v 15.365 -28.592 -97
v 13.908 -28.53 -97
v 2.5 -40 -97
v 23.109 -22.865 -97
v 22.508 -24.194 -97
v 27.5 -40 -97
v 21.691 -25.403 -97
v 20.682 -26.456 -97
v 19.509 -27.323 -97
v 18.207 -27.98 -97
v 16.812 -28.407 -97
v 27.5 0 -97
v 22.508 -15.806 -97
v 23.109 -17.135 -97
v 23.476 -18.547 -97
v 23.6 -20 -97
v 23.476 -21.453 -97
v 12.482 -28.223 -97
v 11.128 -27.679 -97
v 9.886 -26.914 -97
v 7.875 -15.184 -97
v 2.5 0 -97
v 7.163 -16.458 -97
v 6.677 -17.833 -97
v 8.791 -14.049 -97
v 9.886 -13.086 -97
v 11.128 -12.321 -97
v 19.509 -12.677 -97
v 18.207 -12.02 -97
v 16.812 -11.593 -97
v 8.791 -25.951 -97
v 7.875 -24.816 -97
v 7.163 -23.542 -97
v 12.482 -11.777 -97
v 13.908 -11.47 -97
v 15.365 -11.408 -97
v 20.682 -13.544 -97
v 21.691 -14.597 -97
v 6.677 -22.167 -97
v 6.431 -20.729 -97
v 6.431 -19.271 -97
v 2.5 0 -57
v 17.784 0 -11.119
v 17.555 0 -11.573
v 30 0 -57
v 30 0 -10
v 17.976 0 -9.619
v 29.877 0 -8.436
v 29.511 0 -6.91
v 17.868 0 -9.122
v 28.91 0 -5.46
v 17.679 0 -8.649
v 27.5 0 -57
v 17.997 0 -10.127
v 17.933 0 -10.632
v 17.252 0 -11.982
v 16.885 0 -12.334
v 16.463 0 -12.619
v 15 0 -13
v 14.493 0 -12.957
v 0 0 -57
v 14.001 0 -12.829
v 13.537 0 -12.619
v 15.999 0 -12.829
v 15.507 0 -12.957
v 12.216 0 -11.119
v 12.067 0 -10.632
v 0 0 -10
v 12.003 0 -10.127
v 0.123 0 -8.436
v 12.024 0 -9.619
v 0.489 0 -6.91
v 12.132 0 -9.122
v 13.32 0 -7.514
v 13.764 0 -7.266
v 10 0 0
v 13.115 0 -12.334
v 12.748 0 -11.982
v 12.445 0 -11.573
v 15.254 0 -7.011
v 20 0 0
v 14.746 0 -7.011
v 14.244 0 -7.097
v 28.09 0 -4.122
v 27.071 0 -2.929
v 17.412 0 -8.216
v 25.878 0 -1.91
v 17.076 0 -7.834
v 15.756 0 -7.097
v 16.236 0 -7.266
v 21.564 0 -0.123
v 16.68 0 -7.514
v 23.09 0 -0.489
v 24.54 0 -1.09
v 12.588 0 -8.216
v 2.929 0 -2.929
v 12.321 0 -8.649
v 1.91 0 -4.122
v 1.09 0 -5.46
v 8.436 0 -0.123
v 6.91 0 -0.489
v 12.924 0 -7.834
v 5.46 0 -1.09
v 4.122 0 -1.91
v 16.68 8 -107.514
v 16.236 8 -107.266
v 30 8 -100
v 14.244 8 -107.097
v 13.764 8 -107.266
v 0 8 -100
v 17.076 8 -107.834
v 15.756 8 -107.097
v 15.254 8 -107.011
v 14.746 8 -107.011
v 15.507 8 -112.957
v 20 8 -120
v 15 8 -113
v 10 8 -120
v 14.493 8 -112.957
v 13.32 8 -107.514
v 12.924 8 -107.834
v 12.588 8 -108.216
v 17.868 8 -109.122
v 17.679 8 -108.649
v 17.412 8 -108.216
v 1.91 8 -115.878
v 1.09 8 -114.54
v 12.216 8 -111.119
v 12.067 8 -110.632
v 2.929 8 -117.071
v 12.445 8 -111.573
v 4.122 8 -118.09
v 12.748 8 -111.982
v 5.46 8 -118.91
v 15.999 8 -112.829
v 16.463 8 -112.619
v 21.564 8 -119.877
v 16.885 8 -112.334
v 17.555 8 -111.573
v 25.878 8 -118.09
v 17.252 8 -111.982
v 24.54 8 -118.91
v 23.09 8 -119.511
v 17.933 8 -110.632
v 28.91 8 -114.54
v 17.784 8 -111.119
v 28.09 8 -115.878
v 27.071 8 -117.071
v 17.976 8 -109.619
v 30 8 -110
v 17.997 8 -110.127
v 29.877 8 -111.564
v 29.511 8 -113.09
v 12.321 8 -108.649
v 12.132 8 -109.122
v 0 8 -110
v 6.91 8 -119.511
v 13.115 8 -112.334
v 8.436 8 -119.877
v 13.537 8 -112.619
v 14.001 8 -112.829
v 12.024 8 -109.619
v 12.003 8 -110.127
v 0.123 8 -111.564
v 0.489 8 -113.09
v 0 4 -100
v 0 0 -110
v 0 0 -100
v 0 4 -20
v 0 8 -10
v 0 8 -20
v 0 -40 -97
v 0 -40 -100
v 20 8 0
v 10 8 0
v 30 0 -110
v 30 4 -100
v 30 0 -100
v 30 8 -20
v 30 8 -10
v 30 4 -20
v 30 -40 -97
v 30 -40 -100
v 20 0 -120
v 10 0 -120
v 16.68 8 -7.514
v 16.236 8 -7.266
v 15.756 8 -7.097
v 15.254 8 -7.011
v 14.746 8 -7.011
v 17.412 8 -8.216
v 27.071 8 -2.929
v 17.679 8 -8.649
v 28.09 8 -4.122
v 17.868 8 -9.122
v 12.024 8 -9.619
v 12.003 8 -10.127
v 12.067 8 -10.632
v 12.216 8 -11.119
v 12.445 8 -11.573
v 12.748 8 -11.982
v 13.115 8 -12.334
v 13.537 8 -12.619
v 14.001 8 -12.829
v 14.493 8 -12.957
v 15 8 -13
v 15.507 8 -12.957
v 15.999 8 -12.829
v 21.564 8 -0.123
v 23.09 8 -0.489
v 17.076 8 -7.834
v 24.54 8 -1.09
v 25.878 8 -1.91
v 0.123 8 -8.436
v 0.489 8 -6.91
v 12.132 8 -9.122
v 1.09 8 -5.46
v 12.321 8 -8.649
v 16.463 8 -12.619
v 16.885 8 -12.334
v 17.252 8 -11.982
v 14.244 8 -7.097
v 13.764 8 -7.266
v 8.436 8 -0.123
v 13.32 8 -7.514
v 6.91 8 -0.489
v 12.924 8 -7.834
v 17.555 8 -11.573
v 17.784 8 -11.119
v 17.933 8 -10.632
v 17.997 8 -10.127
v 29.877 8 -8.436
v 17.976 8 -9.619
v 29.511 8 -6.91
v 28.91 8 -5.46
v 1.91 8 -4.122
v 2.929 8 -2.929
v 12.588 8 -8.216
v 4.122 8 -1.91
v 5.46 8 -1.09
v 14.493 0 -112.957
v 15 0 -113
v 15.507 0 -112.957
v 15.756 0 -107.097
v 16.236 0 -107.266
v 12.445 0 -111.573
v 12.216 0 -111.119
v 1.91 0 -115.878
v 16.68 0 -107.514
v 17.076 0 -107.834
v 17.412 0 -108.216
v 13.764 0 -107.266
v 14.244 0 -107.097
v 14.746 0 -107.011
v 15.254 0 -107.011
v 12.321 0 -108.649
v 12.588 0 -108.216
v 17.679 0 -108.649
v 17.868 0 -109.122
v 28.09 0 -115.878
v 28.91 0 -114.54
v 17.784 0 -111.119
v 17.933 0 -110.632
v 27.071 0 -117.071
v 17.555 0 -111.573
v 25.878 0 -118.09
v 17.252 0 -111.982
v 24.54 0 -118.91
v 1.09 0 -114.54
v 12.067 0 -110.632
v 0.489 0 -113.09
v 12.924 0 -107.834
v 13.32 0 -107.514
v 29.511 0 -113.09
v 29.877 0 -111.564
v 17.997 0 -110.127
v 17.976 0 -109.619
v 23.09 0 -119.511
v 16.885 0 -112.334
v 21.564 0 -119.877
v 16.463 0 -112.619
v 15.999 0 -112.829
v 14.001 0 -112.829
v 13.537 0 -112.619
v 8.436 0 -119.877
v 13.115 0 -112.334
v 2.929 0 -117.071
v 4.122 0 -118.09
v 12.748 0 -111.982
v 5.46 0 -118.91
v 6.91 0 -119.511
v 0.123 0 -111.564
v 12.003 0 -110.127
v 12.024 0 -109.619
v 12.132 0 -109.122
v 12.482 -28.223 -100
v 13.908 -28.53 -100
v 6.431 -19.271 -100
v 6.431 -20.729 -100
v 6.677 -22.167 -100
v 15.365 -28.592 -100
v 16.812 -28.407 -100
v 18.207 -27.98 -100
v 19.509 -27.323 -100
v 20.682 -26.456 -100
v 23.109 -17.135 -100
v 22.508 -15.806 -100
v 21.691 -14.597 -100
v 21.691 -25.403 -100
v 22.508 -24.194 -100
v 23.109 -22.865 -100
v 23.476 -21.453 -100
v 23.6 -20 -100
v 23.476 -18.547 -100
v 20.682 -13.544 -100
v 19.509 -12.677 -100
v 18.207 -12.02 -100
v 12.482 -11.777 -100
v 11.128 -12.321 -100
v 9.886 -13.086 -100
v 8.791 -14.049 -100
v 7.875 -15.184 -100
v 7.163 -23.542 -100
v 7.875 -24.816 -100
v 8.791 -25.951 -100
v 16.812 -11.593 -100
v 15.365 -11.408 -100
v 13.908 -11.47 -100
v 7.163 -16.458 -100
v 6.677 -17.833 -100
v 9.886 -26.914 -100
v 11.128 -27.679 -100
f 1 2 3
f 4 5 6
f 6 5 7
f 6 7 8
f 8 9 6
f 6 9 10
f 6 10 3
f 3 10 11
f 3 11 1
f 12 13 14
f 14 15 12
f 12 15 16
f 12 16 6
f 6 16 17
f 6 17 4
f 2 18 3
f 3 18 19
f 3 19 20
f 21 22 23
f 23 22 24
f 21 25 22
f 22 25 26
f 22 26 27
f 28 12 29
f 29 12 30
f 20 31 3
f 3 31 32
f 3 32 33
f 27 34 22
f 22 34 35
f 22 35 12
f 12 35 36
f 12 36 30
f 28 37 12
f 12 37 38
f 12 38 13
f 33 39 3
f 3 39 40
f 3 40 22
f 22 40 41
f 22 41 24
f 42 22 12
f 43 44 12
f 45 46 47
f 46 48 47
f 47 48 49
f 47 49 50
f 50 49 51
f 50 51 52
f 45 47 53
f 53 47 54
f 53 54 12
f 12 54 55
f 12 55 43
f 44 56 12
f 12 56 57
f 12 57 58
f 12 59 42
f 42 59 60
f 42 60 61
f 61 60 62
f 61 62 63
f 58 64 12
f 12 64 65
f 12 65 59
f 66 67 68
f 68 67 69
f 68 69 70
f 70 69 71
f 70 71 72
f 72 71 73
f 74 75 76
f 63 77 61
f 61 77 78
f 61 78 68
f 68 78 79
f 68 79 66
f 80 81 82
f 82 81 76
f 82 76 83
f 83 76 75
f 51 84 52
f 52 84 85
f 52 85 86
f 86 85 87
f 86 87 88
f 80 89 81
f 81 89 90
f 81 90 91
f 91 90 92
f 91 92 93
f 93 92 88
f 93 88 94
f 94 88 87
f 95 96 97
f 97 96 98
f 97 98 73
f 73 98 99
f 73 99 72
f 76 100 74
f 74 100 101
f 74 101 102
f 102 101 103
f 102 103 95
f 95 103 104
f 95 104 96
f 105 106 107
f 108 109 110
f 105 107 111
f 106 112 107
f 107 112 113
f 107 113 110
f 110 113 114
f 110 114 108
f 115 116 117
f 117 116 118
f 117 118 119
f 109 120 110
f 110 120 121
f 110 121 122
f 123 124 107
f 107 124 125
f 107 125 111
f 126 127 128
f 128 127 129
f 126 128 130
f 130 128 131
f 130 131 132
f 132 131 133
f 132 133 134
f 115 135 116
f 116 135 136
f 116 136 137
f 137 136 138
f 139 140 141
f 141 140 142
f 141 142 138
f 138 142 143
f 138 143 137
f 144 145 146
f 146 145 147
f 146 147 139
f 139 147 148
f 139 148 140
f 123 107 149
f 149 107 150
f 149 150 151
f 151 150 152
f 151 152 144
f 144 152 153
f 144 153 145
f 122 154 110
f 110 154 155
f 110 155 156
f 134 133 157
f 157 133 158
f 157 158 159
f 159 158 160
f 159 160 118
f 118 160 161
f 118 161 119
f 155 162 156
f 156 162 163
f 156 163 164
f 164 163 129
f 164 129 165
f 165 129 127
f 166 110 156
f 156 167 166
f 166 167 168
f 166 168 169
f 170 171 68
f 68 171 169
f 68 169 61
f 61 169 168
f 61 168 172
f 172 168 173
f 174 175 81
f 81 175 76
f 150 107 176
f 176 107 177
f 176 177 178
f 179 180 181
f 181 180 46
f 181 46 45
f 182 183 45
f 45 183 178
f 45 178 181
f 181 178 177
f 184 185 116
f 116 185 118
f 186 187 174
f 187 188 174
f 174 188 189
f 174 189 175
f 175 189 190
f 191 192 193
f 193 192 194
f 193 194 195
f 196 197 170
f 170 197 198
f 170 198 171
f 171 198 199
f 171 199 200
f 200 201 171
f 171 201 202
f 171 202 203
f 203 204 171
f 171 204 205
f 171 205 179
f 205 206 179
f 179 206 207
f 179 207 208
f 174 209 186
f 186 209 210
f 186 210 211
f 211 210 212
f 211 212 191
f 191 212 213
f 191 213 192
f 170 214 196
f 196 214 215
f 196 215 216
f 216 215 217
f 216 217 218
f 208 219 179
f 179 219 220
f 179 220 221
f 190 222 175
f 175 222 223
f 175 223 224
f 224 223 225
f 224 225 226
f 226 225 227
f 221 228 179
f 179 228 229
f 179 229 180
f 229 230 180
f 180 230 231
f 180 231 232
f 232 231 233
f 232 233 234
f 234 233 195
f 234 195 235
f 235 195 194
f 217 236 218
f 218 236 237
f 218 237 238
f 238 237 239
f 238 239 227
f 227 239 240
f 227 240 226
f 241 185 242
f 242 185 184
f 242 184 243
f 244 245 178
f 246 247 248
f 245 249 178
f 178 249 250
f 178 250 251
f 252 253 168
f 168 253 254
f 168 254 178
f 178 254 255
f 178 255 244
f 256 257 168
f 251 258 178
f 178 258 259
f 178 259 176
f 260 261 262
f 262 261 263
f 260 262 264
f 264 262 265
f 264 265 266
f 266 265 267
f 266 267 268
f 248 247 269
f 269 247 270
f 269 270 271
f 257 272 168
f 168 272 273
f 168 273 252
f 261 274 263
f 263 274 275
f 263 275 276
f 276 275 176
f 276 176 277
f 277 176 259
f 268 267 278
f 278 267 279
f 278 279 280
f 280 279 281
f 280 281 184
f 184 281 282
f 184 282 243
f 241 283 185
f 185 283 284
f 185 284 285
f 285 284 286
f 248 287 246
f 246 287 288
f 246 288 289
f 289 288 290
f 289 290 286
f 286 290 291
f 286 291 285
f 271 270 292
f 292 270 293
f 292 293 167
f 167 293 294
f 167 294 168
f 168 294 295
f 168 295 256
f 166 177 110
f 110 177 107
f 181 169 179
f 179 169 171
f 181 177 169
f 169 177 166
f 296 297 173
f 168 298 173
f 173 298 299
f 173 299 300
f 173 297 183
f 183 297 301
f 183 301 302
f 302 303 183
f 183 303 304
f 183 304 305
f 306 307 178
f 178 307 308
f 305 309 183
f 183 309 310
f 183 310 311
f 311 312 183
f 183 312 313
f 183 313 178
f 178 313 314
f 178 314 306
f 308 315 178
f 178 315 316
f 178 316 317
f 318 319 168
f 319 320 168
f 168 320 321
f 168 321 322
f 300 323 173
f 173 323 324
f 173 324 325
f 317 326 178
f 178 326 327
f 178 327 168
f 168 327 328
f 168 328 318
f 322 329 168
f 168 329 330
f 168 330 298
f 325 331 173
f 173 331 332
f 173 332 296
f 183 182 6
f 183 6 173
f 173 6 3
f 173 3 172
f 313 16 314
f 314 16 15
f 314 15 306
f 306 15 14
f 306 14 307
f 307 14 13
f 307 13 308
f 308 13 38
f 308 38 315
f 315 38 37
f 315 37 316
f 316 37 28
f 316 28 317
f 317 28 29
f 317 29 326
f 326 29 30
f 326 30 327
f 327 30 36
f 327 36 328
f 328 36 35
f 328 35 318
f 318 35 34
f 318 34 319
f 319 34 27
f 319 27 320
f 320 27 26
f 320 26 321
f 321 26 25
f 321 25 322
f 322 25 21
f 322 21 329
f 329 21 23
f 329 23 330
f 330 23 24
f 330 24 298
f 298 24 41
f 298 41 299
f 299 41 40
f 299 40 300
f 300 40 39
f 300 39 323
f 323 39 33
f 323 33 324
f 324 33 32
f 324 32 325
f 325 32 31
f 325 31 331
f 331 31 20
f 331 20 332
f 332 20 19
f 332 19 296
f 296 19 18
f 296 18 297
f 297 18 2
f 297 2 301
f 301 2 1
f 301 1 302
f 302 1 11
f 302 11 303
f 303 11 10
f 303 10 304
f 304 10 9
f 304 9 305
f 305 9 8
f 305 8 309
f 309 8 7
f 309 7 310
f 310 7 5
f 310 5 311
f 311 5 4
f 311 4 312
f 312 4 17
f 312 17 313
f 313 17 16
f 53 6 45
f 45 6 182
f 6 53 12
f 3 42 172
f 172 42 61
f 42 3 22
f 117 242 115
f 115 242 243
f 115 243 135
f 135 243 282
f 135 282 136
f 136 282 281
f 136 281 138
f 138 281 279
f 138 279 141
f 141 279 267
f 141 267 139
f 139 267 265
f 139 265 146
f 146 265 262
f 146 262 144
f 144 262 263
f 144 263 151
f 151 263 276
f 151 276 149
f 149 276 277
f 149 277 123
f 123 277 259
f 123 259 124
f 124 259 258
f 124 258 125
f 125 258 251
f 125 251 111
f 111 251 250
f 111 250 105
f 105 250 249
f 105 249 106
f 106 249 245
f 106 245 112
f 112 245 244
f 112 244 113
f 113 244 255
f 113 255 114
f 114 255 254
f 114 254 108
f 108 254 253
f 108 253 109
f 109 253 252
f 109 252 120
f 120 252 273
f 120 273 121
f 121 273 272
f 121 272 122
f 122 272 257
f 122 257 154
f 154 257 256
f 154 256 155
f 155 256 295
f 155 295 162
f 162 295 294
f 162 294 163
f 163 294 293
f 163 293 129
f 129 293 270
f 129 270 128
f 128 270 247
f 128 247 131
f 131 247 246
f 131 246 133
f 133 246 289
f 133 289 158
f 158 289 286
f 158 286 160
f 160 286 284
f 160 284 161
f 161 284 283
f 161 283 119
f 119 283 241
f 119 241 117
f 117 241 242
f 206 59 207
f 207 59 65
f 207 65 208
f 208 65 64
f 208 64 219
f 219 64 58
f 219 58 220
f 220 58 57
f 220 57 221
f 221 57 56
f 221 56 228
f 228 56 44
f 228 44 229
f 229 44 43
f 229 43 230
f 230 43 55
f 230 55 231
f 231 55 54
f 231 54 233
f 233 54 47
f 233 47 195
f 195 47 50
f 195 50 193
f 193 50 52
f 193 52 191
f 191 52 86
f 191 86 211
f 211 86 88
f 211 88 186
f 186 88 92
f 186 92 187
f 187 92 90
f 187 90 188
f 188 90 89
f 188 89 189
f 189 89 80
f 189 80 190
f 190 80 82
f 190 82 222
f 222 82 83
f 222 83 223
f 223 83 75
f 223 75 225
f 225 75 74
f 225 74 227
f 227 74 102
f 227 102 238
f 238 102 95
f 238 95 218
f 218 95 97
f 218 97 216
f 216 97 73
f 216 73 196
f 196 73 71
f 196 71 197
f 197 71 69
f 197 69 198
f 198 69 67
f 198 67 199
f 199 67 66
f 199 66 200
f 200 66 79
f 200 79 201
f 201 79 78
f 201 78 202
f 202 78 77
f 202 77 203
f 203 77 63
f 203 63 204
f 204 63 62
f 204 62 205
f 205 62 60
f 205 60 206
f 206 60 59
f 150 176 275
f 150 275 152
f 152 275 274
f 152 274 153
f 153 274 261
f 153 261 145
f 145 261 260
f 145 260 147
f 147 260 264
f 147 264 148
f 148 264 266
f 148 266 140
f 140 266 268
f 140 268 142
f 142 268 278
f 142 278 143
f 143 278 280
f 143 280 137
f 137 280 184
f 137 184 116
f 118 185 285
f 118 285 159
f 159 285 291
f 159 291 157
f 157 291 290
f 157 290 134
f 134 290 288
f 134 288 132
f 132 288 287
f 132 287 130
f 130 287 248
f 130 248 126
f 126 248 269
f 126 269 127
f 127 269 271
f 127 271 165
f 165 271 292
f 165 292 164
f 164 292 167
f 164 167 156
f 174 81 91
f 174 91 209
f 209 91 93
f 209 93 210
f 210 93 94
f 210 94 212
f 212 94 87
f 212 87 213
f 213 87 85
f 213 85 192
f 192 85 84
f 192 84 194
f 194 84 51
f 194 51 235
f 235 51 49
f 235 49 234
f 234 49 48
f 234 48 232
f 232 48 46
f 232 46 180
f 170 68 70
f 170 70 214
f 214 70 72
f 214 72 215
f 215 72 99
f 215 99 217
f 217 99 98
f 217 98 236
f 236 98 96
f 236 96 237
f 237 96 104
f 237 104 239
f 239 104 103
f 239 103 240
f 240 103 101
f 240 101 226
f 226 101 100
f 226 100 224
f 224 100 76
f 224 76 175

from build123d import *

# Parameters (mm, degrees)
SKETCH1_W           = 30
SKETCH1_H           = 120
BOSS_EXTRUDE1_DEPTH = 8
SKETCH2_W           = 30
SKETCH2_H           = 80
CUT_EXTRUDE1_DEPTH  = 4
SKETCH3_W           = 30
SKETCH3_H           = 3
BOSS_EXTRUDE2_DEPTH = 40
SKETCH4_R           = 8.6
CUT_EXTRUDE2_DEPTH  = 40
BOSS_EXTRUDE3_DEPTH = 2.5
BOSS_EXTRUDE4_DEPTH = 2.5
SKETCH7_R           = 3
CUT_EXTRUDE3_DEPTH  = 131
FILLET1_R           = 10


with BuildPart() as part:
    # Sketch1 → Boss-Extrude1 (new body)
    with BuildSketch(Plane(origin=(0, 0, 0), x_dir=(1, 0, 0), z_dir=(0, 1, 0))):
        with Locations((15, 60)):
            Rectangle(SKETCH1_W, SKETCH1_H)
    extrude(amount=BOSS_EXTRUDE1_DEPTH)

    # Sketch2 → Cut-Extrude1 (cut)
    with BuildSketch(Plane(origin=(0, 8, 0), x_dir=(1, 0, 0), z_dir=(0, 1, 0))):
        with Locations((15, 60)):
            Rectangle(SKETCH2_W, SKETCH2_H)
    extrude(amount=-CUT_EXTRUDE1_DEPTH, mode=Mode.SUBTRACT)

    # Sketch3 → Boss-Extrude2 (add)
    with BuildSketch(Plane.XZ):
        with Locations((15, -98.5)):
            Rectangle(SKETCH3_W, SKETCH3_H)
    extrude(amount=BOSS_EXTRUDE2_DEPTH)

    # Sketch4 → Cut-Extrude2 (cut)
    with BuildSketch(Plane.XY.offset(-97)):
        with Locations((15, -20)):
            Circle(SKETCH4_R)
    extrude(amount=-CUT_EXTRUDE2_DEPTH, mode=Mode.SUBTRACT)

    # Sketch5 → Boss-Extrude3 (add)
    with BuildSketch(Plane(origin=(30, 0, 0), x_dir=(0, 0, -1), z_dir=(1, 0, 0))):
        Polygon((97, -40), (57, 0), (97, 0), align=None)
    extrude(amount=-BOSS_EXTRUDE3_DEPTH)

    # Sketch6 → Boss-Extrude4 (add)
    with BuildSketch(Plane.ZY):
        Polygon((-57, 0), (-97, -40), (-97, 0), align=None)
    extrude(amount=-BOSS_EXTRUDE4_DEPTH)

    # Sketch7 → Cut-Extrude3 (cut, through all)
    with BuildSketch(Plane(origin=(0, 0, 0), x_dir=(-1, 0, 0), z_dir=(0, -1, 0))):
        with Locations(Location((-15, 10, 0), (0, 0, 90))):
            Circle(SKETCH7_R)
        with Locations(Location((-15, 110, 0), (0, 0, 90))):
            Circle(SKETCH7_R)
    extrude(amount=-CUT_EXTRUDE3_DEPTH, mode=Mode.SUBTRACT)

    # Fillet1
    fillet1_edges = [part.edges().sort_by_distance(p)[0] for p in [
        (0, 4, -120),
        (30, 4, -120),
        (30, 4, 0),
        (0, 4, 0),
    ]]
    fillet(fillet1_edges, radius=FILLET1_R)


solid = part.part
